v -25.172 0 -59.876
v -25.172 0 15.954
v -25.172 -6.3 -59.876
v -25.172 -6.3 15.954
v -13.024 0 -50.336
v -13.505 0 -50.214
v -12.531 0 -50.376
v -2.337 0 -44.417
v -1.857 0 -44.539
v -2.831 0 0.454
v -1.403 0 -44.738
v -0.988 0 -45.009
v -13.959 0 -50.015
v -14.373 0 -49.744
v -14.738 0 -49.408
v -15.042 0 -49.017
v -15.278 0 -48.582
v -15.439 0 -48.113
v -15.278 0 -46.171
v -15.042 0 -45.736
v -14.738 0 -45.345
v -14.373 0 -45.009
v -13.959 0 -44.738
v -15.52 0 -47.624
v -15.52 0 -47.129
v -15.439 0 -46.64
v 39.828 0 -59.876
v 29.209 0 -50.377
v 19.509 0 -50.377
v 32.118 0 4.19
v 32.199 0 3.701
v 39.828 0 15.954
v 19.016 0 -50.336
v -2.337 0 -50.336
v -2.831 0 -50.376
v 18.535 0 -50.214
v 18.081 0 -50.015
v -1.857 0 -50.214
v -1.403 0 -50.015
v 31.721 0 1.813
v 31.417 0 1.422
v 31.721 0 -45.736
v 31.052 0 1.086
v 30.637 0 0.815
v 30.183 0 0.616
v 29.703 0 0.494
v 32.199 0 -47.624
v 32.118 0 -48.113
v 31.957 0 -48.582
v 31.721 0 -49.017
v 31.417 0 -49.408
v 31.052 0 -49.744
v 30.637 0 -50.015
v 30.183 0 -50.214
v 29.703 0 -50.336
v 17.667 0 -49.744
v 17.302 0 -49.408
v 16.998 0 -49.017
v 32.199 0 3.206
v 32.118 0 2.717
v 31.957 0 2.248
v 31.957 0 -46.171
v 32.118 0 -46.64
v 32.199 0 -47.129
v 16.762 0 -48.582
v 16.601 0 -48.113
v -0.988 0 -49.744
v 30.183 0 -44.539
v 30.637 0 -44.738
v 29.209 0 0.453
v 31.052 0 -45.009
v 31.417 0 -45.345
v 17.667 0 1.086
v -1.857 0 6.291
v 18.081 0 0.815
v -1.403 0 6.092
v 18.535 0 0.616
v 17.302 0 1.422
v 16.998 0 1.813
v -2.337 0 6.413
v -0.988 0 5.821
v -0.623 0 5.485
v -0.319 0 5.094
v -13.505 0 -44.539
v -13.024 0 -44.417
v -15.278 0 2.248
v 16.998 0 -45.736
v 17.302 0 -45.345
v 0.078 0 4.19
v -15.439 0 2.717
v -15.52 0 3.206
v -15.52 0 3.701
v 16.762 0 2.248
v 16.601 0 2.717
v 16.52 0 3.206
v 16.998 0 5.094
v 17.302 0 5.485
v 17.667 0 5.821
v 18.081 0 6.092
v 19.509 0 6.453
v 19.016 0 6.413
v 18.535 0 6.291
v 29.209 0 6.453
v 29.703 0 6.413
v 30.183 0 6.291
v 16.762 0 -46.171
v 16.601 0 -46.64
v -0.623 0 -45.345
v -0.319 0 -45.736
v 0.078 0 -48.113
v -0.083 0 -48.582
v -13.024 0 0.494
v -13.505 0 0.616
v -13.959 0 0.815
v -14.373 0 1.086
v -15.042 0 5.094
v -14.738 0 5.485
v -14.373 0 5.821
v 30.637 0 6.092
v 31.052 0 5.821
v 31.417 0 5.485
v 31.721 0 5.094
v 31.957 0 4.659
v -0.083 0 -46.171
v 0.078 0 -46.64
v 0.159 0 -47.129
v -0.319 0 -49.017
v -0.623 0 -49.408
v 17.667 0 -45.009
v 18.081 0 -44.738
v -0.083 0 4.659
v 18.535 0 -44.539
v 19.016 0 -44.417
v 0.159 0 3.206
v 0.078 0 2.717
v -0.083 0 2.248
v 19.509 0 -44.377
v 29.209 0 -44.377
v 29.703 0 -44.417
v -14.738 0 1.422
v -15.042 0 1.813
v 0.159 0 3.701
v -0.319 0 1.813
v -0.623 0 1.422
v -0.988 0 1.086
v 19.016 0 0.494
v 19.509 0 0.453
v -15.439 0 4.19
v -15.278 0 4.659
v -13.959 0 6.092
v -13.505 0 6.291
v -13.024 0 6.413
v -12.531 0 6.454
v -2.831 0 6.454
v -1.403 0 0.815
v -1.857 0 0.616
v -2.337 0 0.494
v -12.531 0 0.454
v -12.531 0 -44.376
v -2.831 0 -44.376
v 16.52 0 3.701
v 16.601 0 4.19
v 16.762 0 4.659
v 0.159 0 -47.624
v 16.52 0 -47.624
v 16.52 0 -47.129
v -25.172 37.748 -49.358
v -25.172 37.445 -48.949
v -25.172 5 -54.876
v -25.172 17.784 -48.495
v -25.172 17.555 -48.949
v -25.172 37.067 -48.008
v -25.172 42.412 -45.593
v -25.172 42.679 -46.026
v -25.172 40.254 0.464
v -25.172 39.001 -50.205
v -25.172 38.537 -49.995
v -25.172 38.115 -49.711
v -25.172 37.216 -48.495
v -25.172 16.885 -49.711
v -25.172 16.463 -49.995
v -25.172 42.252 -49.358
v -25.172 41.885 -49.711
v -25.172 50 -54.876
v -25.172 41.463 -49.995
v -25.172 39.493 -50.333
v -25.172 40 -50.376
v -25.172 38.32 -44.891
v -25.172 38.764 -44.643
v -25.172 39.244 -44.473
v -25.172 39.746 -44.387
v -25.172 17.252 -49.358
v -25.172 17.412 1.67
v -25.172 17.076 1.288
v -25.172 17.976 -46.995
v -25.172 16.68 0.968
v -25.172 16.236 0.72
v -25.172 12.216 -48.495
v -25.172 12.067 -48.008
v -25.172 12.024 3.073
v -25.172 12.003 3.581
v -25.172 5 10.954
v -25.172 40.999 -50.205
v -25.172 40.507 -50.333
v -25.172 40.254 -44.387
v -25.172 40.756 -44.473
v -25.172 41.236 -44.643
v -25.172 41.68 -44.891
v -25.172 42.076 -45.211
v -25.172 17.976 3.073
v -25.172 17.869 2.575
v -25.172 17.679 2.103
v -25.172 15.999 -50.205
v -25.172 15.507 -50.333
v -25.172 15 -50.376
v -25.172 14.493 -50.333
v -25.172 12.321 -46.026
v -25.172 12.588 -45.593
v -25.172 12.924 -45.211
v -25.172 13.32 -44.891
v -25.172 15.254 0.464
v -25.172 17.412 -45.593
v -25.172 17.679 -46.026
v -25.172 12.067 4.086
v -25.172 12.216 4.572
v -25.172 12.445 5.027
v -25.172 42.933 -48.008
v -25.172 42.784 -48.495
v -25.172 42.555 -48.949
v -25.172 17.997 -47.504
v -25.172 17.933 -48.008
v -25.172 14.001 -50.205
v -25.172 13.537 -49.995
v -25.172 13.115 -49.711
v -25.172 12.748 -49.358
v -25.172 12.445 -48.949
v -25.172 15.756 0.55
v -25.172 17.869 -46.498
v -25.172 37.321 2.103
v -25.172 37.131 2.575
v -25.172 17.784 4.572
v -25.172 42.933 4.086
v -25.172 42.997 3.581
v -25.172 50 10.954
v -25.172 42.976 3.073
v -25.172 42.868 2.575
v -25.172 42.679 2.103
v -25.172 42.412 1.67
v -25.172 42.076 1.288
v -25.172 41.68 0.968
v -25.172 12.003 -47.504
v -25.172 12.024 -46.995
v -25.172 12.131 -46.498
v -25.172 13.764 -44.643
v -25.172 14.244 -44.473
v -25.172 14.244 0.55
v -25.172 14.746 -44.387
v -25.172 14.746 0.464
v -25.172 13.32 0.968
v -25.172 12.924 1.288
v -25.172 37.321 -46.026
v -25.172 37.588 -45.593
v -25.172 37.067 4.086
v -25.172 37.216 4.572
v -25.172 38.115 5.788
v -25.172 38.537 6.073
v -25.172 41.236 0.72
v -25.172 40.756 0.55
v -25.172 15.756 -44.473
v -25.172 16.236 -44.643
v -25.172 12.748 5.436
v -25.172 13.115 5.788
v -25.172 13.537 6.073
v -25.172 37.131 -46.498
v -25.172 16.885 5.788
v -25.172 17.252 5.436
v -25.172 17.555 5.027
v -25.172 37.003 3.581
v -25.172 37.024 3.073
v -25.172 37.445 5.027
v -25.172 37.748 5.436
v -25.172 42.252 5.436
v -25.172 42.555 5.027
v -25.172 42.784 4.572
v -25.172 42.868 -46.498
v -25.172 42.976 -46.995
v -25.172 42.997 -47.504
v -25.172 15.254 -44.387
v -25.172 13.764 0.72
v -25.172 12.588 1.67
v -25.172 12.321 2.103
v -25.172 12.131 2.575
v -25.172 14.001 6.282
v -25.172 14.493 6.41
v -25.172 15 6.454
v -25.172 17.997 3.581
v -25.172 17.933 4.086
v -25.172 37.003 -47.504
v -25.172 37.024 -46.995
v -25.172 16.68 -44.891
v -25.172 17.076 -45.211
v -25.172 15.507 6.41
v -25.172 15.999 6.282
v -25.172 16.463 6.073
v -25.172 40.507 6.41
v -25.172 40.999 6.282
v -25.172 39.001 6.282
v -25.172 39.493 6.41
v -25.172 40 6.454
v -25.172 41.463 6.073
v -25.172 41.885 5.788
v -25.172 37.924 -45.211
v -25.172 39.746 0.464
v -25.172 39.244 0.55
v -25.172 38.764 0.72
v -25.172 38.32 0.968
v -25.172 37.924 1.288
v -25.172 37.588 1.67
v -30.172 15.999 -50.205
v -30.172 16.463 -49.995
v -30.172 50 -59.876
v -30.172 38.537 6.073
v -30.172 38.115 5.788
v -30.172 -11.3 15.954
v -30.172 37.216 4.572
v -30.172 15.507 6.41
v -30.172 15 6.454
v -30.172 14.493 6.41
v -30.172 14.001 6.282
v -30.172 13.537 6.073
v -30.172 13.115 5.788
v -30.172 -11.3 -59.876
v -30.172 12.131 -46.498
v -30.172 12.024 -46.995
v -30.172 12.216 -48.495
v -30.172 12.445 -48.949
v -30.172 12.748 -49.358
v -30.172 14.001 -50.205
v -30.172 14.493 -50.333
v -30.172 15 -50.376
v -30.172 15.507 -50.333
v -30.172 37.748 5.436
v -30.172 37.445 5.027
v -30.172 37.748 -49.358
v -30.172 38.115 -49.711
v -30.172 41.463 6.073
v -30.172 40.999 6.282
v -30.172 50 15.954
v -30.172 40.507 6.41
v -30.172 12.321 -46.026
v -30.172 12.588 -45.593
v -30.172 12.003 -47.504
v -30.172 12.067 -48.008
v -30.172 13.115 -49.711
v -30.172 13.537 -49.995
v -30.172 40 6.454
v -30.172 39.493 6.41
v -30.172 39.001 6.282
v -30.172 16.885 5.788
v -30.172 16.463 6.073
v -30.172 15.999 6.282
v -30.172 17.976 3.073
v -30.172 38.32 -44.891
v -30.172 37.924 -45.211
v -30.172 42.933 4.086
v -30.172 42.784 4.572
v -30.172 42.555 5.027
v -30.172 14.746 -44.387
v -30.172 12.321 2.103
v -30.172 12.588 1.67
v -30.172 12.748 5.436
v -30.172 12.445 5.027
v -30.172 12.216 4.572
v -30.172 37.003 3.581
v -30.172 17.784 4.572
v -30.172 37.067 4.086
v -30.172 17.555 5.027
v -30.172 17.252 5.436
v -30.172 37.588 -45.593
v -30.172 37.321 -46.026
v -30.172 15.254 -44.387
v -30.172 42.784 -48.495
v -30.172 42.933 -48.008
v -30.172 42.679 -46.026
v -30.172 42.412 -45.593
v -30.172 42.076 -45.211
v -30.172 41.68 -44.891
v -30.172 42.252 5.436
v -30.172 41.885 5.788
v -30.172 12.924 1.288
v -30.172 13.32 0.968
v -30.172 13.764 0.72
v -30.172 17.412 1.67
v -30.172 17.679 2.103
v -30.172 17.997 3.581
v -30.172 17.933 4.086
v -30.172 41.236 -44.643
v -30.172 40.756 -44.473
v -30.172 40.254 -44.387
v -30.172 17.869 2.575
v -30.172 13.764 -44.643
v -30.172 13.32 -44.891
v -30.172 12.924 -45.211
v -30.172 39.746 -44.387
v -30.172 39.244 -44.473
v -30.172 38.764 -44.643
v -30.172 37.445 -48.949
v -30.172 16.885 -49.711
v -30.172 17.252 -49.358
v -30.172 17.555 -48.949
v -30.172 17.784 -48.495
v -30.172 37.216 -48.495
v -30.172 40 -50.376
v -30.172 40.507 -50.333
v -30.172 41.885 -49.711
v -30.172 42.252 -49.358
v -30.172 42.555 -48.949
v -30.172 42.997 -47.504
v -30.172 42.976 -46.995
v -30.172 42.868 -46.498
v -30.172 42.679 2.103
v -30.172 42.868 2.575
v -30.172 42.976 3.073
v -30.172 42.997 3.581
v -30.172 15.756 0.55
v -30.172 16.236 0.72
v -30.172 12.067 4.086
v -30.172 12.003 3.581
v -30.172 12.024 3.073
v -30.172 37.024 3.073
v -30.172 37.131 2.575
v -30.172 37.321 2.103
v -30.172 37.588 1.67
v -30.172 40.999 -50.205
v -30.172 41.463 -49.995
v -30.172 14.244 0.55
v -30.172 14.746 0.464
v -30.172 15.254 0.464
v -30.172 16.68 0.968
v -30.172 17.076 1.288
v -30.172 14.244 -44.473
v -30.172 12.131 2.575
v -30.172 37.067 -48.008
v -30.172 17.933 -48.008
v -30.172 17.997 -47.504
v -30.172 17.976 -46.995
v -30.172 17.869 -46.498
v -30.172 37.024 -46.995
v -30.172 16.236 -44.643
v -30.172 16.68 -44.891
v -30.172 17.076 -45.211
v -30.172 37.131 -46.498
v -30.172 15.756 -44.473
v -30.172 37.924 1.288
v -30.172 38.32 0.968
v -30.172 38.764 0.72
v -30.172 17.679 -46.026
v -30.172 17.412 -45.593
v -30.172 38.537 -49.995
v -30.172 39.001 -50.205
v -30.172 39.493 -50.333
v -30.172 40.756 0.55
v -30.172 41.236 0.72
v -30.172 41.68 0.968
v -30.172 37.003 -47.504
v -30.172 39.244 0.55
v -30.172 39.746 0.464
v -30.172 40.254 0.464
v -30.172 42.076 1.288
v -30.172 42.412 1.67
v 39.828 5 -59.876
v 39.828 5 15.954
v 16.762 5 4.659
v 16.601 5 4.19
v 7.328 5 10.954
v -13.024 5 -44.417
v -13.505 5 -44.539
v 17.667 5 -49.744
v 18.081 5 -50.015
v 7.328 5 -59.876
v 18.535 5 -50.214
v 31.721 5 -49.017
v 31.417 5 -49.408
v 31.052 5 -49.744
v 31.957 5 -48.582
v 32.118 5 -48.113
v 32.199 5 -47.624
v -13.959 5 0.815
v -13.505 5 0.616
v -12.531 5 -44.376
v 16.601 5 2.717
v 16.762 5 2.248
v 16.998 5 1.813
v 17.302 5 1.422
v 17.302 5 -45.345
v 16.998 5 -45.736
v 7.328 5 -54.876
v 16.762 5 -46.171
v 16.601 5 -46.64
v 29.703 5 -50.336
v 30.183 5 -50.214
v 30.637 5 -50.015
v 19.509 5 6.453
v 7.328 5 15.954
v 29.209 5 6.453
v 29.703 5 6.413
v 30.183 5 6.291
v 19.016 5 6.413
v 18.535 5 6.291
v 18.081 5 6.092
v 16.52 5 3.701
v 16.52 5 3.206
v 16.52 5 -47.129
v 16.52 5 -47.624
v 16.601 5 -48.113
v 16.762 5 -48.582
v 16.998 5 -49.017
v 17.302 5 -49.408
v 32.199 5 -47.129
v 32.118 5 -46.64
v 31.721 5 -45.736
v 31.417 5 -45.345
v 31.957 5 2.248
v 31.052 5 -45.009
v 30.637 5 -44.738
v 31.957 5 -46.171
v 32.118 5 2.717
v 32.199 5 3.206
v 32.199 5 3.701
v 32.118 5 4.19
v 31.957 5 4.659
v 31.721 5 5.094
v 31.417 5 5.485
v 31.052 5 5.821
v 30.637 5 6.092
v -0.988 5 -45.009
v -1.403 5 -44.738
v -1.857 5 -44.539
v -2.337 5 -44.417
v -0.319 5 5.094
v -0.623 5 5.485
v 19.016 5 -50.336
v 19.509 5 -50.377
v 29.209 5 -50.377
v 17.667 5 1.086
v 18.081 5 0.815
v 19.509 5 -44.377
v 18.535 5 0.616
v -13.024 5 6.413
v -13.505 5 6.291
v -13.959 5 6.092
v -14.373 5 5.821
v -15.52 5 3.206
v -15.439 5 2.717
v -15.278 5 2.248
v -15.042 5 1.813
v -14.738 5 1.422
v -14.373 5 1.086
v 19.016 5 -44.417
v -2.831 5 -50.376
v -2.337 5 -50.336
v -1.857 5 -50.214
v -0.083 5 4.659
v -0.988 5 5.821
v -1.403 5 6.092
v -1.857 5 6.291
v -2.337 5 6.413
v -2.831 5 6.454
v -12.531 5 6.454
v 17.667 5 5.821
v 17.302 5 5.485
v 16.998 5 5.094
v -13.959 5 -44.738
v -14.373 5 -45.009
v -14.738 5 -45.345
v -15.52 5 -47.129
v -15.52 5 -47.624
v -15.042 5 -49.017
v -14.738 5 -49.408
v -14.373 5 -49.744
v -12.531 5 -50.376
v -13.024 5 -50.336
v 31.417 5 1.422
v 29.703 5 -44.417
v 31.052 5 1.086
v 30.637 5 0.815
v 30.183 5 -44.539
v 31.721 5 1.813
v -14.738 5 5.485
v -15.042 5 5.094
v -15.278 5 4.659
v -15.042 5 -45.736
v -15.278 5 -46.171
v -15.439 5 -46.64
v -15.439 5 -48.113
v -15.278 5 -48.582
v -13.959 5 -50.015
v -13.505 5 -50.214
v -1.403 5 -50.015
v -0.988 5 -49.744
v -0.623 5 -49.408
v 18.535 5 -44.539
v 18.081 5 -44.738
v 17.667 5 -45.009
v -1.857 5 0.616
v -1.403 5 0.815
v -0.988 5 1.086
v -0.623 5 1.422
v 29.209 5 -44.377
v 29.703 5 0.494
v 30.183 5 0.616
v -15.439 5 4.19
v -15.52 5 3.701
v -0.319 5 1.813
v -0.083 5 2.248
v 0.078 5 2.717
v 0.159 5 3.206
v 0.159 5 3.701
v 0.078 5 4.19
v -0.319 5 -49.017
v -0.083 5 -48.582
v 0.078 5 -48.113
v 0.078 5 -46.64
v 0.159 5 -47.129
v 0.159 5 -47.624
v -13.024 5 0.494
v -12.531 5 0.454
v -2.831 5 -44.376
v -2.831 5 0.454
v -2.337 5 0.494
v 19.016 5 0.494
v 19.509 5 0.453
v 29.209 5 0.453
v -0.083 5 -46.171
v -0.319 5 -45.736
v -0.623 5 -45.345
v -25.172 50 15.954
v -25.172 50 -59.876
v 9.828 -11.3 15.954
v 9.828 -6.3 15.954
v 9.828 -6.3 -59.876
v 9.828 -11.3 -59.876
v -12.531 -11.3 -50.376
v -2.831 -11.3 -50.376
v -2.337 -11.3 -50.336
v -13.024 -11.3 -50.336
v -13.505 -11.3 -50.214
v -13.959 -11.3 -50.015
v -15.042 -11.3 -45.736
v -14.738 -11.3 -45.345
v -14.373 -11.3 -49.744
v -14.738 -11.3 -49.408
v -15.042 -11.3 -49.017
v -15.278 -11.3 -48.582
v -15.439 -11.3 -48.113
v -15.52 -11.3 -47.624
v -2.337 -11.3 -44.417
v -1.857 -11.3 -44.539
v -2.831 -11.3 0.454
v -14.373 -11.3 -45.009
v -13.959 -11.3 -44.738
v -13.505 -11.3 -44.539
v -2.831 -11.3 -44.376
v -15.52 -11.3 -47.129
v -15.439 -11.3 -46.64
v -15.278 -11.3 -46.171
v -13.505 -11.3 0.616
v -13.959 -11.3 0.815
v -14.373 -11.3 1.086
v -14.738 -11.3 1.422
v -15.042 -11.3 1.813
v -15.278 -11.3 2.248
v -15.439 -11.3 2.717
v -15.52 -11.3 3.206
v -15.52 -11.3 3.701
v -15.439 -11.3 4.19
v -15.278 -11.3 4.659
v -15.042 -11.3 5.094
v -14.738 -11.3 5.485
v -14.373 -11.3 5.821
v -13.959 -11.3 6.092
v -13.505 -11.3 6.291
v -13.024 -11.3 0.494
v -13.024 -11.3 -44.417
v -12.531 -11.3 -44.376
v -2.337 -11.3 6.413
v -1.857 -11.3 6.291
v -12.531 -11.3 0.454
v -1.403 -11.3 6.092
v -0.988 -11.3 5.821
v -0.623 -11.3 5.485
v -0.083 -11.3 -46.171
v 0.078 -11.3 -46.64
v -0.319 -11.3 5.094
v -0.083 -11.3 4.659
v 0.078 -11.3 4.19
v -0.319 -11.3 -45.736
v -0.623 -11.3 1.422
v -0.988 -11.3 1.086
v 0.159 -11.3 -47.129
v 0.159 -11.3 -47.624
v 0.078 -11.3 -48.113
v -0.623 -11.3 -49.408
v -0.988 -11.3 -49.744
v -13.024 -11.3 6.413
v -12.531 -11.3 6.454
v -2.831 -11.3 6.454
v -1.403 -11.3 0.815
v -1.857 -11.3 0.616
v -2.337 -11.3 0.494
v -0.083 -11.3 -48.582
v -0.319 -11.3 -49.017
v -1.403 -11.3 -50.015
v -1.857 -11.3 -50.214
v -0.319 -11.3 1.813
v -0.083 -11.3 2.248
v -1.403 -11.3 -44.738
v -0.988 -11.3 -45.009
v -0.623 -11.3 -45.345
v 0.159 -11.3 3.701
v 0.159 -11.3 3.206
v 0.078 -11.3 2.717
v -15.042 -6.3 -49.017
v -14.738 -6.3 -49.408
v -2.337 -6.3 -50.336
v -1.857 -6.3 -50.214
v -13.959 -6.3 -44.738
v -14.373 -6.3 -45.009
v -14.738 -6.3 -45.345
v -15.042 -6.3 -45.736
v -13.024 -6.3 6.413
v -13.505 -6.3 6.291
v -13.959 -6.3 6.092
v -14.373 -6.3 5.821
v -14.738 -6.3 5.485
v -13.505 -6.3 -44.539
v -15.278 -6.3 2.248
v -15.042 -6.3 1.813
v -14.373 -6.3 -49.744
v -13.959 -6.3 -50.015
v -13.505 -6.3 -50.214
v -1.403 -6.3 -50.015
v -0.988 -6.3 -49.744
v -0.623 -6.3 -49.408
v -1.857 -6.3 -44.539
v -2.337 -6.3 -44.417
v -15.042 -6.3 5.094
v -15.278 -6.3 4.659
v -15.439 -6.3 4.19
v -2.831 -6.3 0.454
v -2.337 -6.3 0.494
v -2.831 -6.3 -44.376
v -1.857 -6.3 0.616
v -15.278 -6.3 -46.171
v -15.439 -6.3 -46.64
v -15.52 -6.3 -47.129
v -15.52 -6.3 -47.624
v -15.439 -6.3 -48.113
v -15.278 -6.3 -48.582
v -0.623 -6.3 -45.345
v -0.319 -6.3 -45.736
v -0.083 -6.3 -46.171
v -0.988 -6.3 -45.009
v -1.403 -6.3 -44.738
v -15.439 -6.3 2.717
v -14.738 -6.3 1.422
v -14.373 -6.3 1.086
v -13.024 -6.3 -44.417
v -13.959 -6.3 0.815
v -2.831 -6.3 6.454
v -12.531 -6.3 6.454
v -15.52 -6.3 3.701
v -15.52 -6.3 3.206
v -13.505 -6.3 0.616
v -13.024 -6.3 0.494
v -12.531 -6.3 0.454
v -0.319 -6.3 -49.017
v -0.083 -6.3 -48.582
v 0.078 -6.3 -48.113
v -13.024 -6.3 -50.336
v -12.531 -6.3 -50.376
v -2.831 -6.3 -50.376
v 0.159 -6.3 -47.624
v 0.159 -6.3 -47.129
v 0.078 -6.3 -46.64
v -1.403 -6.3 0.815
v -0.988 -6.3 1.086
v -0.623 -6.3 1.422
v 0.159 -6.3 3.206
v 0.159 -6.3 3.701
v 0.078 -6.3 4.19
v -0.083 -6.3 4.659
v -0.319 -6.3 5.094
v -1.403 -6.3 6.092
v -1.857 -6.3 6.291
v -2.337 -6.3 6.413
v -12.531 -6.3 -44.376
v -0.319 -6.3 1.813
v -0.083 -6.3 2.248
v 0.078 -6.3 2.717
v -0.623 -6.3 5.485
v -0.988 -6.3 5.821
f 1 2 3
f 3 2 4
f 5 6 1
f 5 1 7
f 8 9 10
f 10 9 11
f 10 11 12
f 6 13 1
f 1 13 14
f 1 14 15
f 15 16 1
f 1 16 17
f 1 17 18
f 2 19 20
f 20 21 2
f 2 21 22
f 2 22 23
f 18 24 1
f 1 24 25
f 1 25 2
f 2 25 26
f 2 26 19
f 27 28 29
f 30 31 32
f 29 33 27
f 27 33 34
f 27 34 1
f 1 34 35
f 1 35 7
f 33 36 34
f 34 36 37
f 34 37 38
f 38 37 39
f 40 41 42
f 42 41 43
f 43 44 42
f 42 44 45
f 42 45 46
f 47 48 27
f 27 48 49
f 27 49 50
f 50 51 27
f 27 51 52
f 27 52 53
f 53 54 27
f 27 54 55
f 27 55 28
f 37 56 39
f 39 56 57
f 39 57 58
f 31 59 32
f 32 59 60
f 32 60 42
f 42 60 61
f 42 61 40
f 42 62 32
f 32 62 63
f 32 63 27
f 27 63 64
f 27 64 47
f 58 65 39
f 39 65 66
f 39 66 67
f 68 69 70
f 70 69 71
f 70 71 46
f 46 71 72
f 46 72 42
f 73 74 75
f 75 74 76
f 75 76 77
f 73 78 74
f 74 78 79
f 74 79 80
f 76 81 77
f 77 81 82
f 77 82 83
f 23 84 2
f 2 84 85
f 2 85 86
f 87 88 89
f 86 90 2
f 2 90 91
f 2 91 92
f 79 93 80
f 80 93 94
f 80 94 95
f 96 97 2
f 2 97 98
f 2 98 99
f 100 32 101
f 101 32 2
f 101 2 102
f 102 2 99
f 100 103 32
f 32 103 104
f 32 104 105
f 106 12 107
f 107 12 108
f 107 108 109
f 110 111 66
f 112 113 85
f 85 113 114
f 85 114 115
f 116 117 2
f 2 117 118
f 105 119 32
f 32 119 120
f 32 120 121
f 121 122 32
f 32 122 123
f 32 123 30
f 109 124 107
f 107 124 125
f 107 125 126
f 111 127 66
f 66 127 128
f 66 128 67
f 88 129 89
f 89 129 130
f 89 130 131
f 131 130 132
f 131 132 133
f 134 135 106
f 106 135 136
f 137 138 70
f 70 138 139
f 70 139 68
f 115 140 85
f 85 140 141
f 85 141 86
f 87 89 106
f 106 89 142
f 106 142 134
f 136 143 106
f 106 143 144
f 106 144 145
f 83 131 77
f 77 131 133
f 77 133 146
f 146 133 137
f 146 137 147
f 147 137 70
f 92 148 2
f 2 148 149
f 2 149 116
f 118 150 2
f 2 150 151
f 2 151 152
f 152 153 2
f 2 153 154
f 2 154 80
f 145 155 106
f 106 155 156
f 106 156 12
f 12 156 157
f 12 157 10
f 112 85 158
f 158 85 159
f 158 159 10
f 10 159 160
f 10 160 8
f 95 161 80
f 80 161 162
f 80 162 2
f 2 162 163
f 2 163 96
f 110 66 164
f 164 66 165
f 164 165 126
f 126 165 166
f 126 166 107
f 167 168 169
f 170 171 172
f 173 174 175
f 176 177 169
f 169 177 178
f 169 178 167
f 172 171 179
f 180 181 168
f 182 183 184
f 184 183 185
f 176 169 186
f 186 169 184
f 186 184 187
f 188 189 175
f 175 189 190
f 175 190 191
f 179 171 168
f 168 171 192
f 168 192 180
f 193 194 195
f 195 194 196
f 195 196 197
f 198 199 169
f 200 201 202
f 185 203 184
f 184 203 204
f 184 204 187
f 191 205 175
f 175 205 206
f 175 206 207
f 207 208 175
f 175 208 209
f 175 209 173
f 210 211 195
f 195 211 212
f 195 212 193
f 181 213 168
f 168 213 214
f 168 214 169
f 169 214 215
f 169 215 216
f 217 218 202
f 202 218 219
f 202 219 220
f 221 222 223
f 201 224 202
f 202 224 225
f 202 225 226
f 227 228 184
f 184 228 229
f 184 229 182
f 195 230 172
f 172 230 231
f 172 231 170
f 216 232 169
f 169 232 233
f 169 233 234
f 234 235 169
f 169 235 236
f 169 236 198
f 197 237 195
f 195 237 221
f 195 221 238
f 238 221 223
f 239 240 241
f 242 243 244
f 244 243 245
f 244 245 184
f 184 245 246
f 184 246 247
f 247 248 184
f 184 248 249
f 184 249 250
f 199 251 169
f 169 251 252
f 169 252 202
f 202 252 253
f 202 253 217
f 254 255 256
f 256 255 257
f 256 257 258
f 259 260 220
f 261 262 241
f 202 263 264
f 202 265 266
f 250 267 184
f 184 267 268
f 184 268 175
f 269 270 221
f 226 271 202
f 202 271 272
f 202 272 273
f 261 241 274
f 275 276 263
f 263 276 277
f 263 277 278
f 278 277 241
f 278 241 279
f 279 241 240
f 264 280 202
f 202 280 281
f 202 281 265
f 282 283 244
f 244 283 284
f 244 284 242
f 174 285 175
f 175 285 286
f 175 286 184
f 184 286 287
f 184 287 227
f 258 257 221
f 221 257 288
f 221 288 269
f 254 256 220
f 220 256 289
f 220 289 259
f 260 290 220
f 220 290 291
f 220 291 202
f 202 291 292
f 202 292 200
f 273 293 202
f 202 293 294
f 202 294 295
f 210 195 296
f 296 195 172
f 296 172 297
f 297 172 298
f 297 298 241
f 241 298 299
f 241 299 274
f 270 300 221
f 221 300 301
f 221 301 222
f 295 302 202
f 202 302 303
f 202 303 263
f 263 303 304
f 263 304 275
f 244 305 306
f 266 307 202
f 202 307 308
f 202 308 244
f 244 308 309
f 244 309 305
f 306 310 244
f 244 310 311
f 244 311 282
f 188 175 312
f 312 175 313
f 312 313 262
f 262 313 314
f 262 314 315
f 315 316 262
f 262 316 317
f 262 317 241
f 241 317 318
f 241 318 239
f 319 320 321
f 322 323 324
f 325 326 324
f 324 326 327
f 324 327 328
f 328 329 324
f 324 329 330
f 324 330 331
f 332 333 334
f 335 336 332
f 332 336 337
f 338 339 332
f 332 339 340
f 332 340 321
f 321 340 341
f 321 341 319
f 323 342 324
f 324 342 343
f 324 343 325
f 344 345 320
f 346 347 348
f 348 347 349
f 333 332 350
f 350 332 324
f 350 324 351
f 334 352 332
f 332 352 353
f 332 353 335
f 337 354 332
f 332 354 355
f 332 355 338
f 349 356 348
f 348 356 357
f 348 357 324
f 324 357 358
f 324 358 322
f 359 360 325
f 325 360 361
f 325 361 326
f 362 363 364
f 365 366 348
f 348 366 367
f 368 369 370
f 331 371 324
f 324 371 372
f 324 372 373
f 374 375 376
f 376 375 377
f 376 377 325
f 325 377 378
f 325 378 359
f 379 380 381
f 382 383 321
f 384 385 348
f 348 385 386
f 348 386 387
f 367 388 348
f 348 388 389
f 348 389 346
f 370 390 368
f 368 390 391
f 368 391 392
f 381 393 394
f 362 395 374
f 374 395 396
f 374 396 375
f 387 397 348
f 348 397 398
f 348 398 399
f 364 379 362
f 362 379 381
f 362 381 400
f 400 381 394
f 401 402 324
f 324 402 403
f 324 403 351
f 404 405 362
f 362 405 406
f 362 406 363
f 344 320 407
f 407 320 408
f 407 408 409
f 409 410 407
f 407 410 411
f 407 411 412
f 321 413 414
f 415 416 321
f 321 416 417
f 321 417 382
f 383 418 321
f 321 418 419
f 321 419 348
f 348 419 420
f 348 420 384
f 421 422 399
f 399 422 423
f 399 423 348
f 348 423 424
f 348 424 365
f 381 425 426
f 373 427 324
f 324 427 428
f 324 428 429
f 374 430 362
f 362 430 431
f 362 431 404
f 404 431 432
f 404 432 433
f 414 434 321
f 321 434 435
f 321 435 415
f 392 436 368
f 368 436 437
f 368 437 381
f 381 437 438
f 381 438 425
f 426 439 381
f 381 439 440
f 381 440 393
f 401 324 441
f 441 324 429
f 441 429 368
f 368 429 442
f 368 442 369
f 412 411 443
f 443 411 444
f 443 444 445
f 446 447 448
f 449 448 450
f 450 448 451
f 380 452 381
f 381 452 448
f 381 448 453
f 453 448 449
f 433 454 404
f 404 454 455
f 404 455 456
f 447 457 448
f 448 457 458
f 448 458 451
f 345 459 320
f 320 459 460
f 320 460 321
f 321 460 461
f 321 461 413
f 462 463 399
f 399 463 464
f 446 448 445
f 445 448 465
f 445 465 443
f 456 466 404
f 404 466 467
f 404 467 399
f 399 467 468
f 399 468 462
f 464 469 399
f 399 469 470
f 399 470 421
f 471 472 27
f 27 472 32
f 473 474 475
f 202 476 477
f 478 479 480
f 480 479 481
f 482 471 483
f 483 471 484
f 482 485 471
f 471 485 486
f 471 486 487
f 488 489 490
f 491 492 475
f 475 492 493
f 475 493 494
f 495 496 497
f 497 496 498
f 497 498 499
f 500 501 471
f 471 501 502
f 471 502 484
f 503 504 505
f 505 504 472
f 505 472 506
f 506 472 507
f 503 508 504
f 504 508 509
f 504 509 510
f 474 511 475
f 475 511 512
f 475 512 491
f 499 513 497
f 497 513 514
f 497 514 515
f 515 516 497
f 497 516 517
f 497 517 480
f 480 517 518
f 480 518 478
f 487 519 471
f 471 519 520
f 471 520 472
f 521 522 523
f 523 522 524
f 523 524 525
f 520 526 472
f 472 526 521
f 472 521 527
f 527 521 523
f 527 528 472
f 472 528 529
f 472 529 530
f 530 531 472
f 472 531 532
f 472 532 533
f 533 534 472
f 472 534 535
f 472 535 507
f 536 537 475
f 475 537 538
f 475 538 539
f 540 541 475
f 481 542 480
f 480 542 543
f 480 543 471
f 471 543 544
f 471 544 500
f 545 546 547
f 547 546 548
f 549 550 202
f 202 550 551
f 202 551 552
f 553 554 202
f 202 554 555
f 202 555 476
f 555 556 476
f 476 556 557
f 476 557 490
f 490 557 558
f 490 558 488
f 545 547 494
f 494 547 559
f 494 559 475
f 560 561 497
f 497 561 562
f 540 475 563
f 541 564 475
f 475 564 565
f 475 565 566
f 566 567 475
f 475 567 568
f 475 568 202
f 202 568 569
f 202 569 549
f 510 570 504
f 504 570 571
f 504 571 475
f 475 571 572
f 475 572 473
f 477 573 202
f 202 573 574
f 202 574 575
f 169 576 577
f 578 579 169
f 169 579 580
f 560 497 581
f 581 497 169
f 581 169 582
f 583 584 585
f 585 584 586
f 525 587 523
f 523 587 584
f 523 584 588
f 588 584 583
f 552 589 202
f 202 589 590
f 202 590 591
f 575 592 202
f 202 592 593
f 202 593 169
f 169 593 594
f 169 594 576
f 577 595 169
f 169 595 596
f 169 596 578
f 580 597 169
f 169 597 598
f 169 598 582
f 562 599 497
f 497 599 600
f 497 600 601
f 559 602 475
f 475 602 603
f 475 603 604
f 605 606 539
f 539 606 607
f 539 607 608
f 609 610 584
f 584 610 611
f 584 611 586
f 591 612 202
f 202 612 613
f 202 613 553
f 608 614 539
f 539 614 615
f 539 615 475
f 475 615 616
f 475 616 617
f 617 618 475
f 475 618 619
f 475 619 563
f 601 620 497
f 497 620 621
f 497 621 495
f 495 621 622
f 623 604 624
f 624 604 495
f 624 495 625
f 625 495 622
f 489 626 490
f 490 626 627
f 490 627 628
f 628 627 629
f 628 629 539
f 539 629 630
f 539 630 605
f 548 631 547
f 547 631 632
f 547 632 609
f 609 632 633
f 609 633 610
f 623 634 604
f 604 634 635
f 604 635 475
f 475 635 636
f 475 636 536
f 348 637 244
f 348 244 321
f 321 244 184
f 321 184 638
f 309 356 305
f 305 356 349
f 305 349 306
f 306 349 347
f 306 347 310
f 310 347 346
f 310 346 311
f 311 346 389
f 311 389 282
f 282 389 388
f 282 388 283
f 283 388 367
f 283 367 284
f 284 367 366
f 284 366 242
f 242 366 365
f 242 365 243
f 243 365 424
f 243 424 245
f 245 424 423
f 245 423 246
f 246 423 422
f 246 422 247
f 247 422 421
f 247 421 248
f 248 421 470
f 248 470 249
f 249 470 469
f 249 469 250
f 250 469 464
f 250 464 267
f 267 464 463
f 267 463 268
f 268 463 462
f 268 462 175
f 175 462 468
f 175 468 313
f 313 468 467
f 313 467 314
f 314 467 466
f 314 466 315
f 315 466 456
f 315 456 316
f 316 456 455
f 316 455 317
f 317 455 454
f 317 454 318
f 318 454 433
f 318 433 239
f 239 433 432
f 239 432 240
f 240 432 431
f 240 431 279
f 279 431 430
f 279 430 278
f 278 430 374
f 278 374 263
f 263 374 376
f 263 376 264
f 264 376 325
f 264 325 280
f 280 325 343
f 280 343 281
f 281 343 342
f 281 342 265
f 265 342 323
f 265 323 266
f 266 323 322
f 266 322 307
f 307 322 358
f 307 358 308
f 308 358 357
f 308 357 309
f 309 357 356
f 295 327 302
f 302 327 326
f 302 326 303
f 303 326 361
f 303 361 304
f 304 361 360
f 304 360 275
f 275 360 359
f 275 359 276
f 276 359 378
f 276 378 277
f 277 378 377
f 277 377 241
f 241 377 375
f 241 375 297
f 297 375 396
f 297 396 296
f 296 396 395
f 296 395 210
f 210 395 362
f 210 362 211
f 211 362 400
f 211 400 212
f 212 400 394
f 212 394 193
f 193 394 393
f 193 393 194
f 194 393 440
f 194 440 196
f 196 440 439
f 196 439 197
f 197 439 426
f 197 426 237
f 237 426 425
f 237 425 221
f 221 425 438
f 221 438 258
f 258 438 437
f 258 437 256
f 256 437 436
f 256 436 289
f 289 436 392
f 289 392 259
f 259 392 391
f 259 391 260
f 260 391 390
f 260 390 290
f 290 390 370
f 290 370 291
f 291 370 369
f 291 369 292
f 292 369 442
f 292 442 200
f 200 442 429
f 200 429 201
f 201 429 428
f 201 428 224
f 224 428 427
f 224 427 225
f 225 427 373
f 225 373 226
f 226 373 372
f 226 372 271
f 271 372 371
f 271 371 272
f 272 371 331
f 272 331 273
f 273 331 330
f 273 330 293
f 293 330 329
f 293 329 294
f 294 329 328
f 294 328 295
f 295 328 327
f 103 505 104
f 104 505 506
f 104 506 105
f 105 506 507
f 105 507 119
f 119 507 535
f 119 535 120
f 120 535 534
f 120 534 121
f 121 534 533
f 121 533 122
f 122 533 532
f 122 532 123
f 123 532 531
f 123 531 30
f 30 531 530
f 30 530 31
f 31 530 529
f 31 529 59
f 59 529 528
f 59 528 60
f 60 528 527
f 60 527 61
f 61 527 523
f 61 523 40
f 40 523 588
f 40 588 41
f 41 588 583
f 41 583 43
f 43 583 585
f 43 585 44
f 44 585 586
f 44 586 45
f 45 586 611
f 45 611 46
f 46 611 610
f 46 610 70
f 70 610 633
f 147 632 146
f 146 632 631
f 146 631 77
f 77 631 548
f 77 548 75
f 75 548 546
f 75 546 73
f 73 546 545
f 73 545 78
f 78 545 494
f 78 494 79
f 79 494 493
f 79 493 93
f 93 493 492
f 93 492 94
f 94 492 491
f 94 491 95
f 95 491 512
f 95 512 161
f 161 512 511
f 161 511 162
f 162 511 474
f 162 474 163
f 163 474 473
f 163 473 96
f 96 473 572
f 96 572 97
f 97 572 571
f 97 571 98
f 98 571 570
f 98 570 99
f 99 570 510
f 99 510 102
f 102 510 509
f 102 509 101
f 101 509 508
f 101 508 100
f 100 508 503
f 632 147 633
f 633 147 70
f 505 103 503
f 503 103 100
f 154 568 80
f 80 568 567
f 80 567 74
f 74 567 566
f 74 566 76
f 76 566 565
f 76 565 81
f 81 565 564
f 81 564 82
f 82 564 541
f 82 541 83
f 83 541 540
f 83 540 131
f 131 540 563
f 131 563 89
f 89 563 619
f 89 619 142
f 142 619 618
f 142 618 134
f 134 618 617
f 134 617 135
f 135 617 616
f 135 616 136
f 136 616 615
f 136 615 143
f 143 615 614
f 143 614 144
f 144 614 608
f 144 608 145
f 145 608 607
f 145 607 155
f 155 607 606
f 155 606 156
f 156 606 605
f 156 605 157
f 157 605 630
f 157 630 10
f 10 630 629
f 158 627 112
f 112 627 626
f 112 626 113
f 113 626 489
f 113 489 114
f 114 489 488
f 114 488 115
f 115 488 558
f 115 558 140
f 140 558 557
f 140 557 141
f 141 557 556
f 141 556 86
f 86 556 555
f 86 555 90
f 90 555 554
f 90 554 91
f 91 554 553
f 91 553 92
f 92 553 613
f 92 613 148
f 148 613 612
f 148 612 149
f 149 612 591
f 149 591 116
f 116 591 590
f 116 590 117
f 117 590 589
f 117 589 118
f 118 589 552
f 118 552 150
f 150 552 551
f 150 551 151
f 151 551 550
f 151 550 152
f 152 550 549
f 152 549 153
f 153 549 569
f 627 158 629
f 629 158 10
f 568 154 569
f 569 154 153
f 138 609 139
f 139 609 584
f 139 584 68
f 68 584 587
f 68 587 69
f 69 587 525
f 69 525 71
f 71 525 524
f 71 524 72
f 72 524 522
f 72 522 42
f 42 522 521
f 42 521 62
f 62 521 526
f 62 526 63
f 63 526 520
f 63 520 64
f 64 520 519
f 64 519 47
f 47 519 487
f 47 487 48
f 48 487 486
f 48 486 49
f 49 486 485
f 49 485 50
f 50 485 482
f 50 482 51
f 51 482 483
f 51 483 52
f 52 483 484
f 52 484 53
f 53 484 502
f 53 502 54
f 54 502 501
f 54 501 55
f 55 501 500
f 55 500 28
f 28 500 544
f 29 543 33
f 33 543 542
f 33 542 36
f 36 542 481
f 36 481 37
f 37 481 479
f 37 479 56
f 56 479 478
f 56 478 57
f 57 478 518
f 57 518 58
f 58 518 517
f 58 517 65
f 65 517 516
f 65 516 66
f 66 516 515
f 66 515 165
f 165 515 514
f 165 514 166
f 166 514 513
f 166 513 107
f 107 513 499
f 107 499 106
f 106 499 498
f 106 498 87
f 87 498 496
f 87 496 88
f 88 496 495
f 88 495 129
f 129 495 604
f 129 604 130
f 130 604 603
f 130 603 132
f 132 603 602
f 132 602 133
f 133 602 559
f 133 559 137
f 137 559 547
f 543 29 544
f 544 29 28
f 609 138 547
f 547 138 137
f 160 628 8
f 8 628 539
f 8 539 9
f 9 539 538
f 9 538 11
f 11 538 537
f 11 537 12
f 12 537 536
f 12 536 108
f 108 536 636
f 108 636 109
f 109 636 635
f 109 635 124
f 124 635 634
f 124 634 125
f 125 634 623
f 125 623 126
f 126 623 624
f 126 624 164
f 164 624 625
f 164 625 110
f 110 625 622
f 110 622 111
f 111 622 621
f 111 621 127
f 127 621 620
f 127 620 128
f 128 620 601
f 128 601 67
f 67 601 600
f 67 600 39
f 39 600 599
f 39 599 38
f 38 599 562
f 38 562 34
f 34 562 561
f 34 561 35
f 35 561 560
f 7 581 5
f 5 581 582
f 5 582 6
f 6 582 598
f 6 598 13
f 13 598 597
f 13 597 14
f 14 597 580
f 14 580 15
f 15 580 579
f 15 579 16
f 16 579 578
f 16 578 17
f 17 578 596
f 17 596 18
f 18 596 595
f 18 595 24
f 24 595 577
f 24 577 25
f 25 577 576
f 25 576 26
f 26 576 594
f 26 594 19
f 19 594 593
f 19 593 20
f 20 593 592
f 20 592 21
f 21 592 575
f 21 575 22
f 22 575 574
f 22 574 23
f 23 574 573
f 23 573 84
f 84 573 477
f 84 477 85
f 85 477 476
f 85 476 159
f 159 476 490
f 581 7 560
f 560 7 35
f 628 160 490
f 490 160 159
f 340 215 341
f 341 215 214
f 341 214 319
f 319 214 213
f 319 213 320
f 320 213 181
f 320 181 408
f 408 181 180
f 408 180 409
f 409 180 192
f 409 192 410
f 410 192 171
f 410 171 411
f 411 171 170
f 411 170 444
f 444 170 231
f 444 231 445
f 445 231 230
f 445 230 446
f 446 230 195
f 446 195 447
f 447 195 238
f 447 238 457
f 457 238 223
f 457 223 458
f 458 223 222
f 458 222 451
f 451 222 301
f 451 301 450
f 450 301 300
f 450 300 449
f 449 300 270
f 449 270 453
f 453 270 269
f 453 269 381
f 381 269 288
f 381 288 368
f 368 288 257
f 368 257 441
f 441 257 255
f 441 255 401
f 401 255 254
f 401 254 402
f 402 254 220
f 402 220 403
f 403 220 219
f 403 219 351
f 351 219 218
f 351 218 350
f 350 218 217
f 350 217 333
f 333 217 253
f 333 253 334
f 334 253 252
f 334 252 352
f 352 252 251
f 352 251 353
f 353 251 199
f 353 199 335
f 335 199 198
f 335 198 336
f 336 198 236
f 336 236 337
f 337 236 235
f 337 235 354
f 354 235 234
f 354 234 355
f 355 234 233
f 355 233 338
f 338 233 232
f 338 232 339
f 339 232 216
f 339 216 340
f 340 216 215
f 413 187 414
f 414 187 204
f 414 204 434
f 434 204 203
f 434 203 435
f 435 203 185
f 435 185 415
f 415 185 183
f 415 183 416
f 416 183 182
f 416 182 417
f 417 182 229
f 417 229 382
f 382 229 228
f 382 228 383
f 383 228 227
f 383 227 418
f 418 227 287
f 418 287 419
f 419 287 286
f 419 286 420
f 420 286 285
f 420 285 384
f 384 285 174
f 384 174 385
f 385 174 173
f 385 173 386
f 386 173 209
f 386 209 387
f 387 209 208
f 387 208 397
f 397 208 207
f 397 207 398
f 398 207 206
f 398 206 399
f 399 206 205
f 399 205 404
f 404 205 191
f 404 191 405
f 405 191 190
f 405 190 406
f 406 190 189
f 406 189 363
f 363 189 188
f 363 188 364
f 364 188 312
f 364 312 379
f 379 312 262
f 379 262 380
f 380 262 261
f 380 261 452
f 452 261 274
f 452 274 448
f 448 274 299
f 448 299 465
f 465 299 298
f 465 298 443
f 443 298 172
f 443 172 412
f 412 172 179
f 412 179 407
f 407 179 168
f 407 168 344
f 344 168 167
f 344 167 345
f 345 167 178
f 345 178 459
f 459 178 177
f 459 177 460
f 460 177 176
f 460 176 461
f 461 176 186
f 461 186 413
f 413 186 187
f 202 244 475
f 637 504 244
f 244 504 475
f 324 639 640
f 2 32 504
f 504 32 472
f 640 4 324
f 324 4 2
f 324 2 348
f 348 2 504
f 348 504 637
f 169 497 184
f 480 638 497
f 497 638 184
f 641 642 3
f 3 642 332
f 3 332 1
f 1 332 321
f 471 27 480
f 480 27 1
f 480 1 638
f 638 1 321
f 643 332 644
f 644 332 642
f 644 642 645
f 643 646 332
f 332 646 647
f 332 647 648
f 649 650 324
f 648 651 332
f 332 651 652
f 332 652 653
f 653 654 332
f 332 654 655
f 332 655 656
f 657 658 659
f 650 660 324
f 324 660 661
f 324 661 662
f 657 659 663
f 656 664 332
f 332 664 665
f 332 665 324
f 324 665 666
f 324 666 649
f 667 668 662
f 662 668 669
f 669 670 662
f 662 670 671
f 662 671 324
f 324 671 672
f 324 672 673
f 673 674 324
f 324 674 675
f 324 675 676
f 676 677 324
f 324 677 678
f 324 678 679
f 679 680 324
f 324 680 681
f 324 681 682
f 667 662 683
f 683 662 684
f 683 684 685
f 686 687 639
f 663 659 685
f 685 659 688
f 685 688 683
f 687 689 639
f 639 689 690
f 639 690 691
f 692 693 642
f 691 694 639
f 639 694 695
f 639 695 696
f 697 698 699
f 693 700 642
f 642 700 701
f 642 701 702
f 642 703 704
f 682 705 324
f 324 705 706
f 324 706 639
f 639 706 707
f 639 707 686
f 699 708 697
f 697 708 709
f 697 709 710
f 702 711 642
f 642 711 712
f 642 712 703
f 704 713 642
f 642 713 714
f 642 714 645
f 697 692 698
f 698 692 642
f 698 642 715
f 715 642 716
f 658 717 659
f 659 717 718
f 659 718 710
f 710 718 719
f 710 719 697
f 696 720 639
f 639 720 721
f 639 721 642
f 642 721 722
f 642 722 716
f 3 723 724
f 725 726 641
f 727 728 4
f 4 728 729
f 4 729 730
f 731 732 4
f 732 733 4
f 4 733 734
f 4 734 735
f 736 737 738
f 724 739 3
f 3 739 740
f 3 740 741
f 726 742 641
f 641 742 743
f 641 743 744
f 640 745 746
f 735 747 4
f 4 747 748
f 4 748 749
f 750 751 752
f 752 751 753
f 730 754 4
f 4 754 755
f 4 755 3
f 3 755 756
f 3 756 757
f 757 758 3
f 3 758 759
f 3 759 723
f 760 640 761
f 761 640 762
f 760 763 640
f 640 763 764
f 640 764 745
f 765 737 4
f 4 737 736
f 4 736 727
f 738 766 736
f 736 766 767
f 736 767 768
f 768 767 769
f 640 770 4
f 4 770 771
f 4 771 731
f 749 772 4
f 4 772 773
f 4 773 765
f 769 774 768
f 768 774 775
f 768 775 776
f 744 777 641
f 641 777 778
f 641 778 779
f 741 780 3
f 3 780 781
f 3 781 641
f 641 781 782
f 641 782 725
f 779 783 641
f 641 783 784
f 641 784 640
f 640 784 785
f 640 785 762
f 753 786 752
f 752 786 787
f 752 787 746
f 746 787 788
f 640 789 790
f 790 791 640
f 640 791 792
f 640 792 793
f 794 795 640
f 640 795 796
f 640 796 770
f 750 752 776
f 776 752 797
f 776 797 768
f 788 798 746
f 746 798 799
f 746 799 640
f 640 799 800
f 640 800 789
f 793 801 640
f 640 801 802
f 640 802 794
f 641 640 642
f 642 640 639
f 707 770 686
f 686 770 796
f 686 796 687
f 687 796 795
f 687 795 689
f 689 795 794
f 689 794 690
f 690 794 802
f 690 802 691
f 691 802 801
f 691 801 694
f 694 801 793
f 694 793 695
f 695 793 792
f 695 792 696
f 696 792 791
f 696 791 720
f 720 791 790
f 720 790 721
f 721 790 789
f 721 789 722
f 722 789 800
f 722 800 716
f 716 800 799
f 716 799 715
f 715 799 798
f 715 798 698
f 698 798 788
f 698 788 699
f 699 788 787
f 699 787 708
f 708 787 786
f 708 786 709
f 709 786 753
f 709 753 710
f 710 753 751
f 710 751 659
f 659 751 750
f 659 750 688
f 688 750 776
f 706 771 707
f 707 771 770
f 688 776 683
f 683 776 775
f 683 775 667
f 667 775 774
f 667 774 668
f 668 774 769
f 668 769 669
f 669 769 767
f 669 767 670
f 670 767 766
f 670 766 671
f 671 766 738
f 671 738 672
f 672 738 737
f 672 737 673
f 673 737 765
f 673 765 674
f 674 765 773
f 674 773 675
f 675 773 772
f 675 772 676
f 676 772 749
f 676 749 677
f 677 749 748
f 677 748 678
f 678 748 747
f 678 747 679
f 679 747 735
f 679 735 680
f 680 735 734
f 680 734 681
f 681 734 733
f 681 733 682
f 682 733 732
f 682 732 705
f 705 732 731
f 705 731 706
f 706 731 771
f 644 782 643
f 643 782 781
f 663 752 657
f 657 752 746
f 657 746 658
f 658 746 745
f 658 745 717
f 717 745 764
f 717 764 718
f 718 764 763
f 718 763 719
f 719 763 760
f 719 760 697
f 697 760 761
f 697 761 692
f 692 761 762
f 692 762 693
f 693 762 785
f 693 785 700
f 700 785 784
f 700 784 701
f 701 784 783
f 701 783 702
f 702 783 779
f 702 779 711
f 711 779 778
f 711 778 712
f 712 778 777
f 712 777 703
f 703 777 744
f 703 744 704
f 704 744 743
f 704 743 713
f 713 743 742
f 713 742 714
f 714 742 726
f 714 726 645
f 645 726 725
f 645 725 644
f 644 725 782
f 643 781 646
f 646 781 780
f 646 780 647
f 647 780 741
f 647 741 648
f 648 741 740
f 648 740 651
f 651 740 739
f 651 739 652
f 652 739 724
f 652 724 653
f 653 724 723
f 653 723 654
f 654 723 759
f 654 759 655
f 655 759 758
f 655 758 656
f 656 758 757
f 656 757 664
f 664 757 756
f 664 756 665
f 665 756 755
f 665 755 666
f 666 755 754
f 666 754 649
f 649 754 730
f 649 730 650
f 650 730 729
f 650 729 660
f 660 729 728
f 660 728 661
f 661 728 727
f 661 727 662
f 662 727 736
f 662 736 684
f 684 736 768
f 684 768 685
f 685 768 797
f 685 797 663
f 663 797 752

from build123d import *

# Parameters (mm, degrees)
SKETCH1_W                 = 70
SKETCH1_H                 = 15
BOSS_EXTRUDE1_DEPTH       = 5
SKETCH3_W                 = 5
SKETCH3_H                 = 15
BOSS_EXTRUDE2_DEPTH       = 45
F_6_0MM_DOWEL_HOLE1_D     = 6
F_6_0MM_DOWEL_SLOT1_DEPTH = 5
BOSS_EXTRUDE3_DEPTH       = 50.83
F_6_0MM_DOWEL_SLOT2_DEPTH = 5
F_6_0MM_DOWEL_HOLE2_D     = 6
F_6_0MM_DOWEL_HOLE2_DEPTH = 7.999
F_6_0MM_DOWEL_HOLE2_TIP   = 1.802581857
BOSS_EXTRUDE4_DEPTH       = 5
BOSS_EXTRUDE5_DEPTH       = 5
SKETCH19_W                = 5
SKETCH19_H                = 75.83
BOSS_EXTRUDE6_DEPTH       = 11.3
SKETCH20_W                = 75.83
SKETCH20_H                = 5
BOSS_EXTRUDE7_DEPTH       = 35
F_6_0MM_START             = -11.3
F_6_0MM_DOWEL_SLOT3_DEPTH = 5


# Read off the part's stored shape, not the designer's step: Ø6.0mm Dowel Slot1, Ø6.0mm Dowel Slot2, Ø6.0mm Dowel Slot3
with BuildPart() as part:
    # Sketch1 → Boss-Extrude1 (new body)
    with BuildSketch(Plane(origin=(0, 0, 0), x_dir=(1, 0, 0), z_dir=(0, 1, 0))):
        with Locations((4.827783478, -3.453636176)):
            Rectangle(SKETCH1_W, SKETCH1_H)
    extrude(amount=BOSS_EXTRUDE1_DEPTH)

    # Sketch3 → Boss-Extrude2 (add)
    with BuildSketch(Plane(origin=(0, 5, 0), x_dir=(1, 0, 0), z_dir=(0, 1, 0))):
        with Locations((-27.672216522, -3.453636176)):
            Rectangle(SKETCH3_W, SKETCH3_H)
    extrude(amount=BOSS_EXTRUDE2_DEPTH)

    # Ø6.0mm Dowel Hole1 (through all)
    with Locations(Plane.ZY.offset(30.172216522)):
        with Locations((3.453636176, 15), (3.453636176, 40)):
            Hole(F_6_0MM_DOWEL_HOLE1_D / 2)

    # Ø6.0mm Dowel Slot1 outline → Ø6.0mm Dowel Slot1 (cut)
    with BuildSketch(Plane(origin=(0, 0, 0), x_dir=(1, 0, 0), z_dir=(0, 1, 0))):
        with BuildLine():
            Line((19.509331286, -6.453444287), (29.209331286, -6.453444287))
            ThreePointArc((29.209331286, -6.453444287), (32.209331286, -3.453444287), (29.209331286, -0.453444287))
            Line((29.209331286, -0.453444287), (19.509331286, -0.453444287))
            ThreePointArc((19.509331286, -0.453444287), (16.509331286, -3.453444287), (19.509331286, -6.453444287))
        make_face()
        with BuildLine():
            Line((-12.530668714, -6.453557031), (-2.830668714, -6.453557031))
            ThreePointArc((-2.830668714, -6.453557031), (0.169331286, -3.453557031), (-2.830668714, -0.453557031))
            Line((-2.830668714, -0.453557031), (-12.530668714, -0.453557031))
            ThreePointArc((-12.530668714, -0.453557031), (-15.530668714, -3.453557031), (-12.530668714, -6.453557031))
        make_face()
    extrude(amount=F_6_0MM_DOWEL_SLOT1_DEPTH, mode=Mode.SUBTRACT)

    # Sketch10 → Boss-Extrude3 (add)
    with BuildSketch(Plane(origin=(0, 0, -4.046363824), x_dir=(-1, 0, 0), z_dir=(0, 0, -1))):
        Polygon((-39.827783478, 5), (-39.827783478, 0), (30.172216522, 0), (30.172216522, 50), (25.172216522, 50), (25.172216522, 5), align=None)
    extrude(amount=BOSS_EXTRUDE3_DEPTH)

    # Ø6.0mm Dowel Slot2 outline → Ø6.0mm Dowel Slot2 (cut)
    with BuildSketch(Plane(origin=(0, 0, 0), x_dir=(1, 0, 0), z_dir=(0, 1, 0))):
        with BuildLine():
            Line((19.509331286, 44.376555713), (29.209331286, 44.376555713))
            ThreePointArc((29.209331286, 44.376555713), (32.209331286, 47.376555713), (29.209331286, 50.376555713))
            Line((29.209331286, 50.376555713), (19.509331286, 50.376555713))
            ThreePointArc((19.509331286, 50.376555713), (16.509331286, 47.376555713), (19.509331286, 44.376555713))
        make_face()
        with BuildLine():
            Line((-12.530668714, 44.376442969), (-2.830668714, 44.376442969))
            ThreePointArc((-2.830668714, 44.376442969), (0.169331286, 47.376442969), (-2.830668714, 50.376442969))
            Line((-2.830668714, 50.376442969), (-12.530668714, 50.376442969))
            ThreePointArc((-12.530668714, 50.376442969), (-15.530668714, 47.376442969), (-12.530668714, 44.376442969))
        make_face()
    extrude(amount=F_6_0MM_DOWEL_SLOT2_DEPTH, mode=Mode.SUBTRACT)

    # Ø6.0mm Dowel Hole2
    with Locations(Plane(origin=(-25.172216522, 0, 0), x_dir=(0, 0, -1), z_dir=(1, 0, 0))):
        with Locations((47.376442969, 40), (47.376442969, 15)):
            Hole(F_6_0MM_DOWEL_HOLE2_D / 2, depth=F_6_0MM_DOWEL_HOLE2_DEPTH)
            with Locations((0, 0, -(F_6_0MM_DOWEL_HOLE2_DEPTH + F_6_0MM_DOWEL_HOLE2_TIP / 2))):  # 118° drill point
                Cone(0, F_6_0MM_DOWEL_HOLE2_D / 2, F_6_0MM_DOWEL_HOLE2_TIP, mode=Mode.SUBTRACT)

    # Sketch17 → Boss-Extrude4 (add)
    with BuildSketch(Plane.XY.offset(10.953636176)):
        Polygon((-25.172216522, 50), (7.327783478, 5), (39.827783478, 5), (39.827783478, 0), (7.327783478, 0), (-30.172216522, 0), (-30.172216522, 50), align=None)
    extrude(amount=BOSS_EXTRUDE4_DEPTH)

    # Sketch18 → Boss-Extrude5 (add)
    with BuildSketch(Plane(origin=(0, 0, -54.876363824), x_dir=(-1, 0, 0), z_dir=(0, 0, -1))):
        Polygon((25.172216522, 50), (-7.327783478, 5), (-39.827783478, 5), (-39.827783478, 0), (30.172216522, 0), (30.172216522, 50), align=None)
    extrude(amount=BOSS_EXTRUDE5_DEPTH)

    # Sketch19 → Boss-Extrude6 (add)
    with BuildSketch(Plane.XZ):
        with Locations((-27.672216522, -21.961363824)):
            Rectangle(SKETCH19_W, SKETCH19_H)
    extrude(amount=BOSS_EXTRUDE6_DEPTH)

    # Sketch20 → Boss-Extrude7 (add)
    with BuildSketch(Plane(origin=(-25.172216522, 0, 0), x_dir=(0, 0, -1), z_dir=(1, 0, 0))):
        with Locations((21.961363824, -8.8)):
            Rectangle(SKETCH20_W, SKETCH20_H)
    extrude(amount=BOSS_EXTRUDE7_DEPTH)

    # Ø6.0mm Dowel Slot3 outline → Ø6.0mm Dowel Slot3 (cut)
    with BuildSketch(Plane(origin=(0, 0, 0), x_dir=(1, 0, 0), z_dir=(0, 1, 0)).offset(F_6_0MM_START)):
        with BuildLine():
            Line((-12.530668714, -6.453557031), (-2.830668714, -6.453557031))
            ThreePointArc((-2.830668714, -6.453557031), (0.169331286, -3.453557031), (-2.830668714, -0.453557031))
            Line((-2.830668714, -0.453557031), (-12.530668714, -0.453557031))
            ThreePointArc((-12.530668714, -0.453557031), (-15.530668714, -3.453557031), (-12.530668714, -6.453557031))
        make_face()
        with BuildLine():
            Line((-12.530668714, 44.376442969), (-2.830668714, 44.376442969))
            ThreePointArc((-2.830668714, 44.376442969), (0.169331286, 47.376442969), (-2.830668714, 50.376442969))
            Line((-2.830668714, 50.376442969), (-12.530668714, 50.376442969))
            ThreePointArc((-12.530668714, 50.376442969), (-15.530668714, 47.376442969), (-12.530668714, 44.376442969))
        make_face()
    extrude(amount=F_6_0MM_DOWEL_SLOT3_DEPTH, mode=Mode.SUBTRACT)


solid = part.part
